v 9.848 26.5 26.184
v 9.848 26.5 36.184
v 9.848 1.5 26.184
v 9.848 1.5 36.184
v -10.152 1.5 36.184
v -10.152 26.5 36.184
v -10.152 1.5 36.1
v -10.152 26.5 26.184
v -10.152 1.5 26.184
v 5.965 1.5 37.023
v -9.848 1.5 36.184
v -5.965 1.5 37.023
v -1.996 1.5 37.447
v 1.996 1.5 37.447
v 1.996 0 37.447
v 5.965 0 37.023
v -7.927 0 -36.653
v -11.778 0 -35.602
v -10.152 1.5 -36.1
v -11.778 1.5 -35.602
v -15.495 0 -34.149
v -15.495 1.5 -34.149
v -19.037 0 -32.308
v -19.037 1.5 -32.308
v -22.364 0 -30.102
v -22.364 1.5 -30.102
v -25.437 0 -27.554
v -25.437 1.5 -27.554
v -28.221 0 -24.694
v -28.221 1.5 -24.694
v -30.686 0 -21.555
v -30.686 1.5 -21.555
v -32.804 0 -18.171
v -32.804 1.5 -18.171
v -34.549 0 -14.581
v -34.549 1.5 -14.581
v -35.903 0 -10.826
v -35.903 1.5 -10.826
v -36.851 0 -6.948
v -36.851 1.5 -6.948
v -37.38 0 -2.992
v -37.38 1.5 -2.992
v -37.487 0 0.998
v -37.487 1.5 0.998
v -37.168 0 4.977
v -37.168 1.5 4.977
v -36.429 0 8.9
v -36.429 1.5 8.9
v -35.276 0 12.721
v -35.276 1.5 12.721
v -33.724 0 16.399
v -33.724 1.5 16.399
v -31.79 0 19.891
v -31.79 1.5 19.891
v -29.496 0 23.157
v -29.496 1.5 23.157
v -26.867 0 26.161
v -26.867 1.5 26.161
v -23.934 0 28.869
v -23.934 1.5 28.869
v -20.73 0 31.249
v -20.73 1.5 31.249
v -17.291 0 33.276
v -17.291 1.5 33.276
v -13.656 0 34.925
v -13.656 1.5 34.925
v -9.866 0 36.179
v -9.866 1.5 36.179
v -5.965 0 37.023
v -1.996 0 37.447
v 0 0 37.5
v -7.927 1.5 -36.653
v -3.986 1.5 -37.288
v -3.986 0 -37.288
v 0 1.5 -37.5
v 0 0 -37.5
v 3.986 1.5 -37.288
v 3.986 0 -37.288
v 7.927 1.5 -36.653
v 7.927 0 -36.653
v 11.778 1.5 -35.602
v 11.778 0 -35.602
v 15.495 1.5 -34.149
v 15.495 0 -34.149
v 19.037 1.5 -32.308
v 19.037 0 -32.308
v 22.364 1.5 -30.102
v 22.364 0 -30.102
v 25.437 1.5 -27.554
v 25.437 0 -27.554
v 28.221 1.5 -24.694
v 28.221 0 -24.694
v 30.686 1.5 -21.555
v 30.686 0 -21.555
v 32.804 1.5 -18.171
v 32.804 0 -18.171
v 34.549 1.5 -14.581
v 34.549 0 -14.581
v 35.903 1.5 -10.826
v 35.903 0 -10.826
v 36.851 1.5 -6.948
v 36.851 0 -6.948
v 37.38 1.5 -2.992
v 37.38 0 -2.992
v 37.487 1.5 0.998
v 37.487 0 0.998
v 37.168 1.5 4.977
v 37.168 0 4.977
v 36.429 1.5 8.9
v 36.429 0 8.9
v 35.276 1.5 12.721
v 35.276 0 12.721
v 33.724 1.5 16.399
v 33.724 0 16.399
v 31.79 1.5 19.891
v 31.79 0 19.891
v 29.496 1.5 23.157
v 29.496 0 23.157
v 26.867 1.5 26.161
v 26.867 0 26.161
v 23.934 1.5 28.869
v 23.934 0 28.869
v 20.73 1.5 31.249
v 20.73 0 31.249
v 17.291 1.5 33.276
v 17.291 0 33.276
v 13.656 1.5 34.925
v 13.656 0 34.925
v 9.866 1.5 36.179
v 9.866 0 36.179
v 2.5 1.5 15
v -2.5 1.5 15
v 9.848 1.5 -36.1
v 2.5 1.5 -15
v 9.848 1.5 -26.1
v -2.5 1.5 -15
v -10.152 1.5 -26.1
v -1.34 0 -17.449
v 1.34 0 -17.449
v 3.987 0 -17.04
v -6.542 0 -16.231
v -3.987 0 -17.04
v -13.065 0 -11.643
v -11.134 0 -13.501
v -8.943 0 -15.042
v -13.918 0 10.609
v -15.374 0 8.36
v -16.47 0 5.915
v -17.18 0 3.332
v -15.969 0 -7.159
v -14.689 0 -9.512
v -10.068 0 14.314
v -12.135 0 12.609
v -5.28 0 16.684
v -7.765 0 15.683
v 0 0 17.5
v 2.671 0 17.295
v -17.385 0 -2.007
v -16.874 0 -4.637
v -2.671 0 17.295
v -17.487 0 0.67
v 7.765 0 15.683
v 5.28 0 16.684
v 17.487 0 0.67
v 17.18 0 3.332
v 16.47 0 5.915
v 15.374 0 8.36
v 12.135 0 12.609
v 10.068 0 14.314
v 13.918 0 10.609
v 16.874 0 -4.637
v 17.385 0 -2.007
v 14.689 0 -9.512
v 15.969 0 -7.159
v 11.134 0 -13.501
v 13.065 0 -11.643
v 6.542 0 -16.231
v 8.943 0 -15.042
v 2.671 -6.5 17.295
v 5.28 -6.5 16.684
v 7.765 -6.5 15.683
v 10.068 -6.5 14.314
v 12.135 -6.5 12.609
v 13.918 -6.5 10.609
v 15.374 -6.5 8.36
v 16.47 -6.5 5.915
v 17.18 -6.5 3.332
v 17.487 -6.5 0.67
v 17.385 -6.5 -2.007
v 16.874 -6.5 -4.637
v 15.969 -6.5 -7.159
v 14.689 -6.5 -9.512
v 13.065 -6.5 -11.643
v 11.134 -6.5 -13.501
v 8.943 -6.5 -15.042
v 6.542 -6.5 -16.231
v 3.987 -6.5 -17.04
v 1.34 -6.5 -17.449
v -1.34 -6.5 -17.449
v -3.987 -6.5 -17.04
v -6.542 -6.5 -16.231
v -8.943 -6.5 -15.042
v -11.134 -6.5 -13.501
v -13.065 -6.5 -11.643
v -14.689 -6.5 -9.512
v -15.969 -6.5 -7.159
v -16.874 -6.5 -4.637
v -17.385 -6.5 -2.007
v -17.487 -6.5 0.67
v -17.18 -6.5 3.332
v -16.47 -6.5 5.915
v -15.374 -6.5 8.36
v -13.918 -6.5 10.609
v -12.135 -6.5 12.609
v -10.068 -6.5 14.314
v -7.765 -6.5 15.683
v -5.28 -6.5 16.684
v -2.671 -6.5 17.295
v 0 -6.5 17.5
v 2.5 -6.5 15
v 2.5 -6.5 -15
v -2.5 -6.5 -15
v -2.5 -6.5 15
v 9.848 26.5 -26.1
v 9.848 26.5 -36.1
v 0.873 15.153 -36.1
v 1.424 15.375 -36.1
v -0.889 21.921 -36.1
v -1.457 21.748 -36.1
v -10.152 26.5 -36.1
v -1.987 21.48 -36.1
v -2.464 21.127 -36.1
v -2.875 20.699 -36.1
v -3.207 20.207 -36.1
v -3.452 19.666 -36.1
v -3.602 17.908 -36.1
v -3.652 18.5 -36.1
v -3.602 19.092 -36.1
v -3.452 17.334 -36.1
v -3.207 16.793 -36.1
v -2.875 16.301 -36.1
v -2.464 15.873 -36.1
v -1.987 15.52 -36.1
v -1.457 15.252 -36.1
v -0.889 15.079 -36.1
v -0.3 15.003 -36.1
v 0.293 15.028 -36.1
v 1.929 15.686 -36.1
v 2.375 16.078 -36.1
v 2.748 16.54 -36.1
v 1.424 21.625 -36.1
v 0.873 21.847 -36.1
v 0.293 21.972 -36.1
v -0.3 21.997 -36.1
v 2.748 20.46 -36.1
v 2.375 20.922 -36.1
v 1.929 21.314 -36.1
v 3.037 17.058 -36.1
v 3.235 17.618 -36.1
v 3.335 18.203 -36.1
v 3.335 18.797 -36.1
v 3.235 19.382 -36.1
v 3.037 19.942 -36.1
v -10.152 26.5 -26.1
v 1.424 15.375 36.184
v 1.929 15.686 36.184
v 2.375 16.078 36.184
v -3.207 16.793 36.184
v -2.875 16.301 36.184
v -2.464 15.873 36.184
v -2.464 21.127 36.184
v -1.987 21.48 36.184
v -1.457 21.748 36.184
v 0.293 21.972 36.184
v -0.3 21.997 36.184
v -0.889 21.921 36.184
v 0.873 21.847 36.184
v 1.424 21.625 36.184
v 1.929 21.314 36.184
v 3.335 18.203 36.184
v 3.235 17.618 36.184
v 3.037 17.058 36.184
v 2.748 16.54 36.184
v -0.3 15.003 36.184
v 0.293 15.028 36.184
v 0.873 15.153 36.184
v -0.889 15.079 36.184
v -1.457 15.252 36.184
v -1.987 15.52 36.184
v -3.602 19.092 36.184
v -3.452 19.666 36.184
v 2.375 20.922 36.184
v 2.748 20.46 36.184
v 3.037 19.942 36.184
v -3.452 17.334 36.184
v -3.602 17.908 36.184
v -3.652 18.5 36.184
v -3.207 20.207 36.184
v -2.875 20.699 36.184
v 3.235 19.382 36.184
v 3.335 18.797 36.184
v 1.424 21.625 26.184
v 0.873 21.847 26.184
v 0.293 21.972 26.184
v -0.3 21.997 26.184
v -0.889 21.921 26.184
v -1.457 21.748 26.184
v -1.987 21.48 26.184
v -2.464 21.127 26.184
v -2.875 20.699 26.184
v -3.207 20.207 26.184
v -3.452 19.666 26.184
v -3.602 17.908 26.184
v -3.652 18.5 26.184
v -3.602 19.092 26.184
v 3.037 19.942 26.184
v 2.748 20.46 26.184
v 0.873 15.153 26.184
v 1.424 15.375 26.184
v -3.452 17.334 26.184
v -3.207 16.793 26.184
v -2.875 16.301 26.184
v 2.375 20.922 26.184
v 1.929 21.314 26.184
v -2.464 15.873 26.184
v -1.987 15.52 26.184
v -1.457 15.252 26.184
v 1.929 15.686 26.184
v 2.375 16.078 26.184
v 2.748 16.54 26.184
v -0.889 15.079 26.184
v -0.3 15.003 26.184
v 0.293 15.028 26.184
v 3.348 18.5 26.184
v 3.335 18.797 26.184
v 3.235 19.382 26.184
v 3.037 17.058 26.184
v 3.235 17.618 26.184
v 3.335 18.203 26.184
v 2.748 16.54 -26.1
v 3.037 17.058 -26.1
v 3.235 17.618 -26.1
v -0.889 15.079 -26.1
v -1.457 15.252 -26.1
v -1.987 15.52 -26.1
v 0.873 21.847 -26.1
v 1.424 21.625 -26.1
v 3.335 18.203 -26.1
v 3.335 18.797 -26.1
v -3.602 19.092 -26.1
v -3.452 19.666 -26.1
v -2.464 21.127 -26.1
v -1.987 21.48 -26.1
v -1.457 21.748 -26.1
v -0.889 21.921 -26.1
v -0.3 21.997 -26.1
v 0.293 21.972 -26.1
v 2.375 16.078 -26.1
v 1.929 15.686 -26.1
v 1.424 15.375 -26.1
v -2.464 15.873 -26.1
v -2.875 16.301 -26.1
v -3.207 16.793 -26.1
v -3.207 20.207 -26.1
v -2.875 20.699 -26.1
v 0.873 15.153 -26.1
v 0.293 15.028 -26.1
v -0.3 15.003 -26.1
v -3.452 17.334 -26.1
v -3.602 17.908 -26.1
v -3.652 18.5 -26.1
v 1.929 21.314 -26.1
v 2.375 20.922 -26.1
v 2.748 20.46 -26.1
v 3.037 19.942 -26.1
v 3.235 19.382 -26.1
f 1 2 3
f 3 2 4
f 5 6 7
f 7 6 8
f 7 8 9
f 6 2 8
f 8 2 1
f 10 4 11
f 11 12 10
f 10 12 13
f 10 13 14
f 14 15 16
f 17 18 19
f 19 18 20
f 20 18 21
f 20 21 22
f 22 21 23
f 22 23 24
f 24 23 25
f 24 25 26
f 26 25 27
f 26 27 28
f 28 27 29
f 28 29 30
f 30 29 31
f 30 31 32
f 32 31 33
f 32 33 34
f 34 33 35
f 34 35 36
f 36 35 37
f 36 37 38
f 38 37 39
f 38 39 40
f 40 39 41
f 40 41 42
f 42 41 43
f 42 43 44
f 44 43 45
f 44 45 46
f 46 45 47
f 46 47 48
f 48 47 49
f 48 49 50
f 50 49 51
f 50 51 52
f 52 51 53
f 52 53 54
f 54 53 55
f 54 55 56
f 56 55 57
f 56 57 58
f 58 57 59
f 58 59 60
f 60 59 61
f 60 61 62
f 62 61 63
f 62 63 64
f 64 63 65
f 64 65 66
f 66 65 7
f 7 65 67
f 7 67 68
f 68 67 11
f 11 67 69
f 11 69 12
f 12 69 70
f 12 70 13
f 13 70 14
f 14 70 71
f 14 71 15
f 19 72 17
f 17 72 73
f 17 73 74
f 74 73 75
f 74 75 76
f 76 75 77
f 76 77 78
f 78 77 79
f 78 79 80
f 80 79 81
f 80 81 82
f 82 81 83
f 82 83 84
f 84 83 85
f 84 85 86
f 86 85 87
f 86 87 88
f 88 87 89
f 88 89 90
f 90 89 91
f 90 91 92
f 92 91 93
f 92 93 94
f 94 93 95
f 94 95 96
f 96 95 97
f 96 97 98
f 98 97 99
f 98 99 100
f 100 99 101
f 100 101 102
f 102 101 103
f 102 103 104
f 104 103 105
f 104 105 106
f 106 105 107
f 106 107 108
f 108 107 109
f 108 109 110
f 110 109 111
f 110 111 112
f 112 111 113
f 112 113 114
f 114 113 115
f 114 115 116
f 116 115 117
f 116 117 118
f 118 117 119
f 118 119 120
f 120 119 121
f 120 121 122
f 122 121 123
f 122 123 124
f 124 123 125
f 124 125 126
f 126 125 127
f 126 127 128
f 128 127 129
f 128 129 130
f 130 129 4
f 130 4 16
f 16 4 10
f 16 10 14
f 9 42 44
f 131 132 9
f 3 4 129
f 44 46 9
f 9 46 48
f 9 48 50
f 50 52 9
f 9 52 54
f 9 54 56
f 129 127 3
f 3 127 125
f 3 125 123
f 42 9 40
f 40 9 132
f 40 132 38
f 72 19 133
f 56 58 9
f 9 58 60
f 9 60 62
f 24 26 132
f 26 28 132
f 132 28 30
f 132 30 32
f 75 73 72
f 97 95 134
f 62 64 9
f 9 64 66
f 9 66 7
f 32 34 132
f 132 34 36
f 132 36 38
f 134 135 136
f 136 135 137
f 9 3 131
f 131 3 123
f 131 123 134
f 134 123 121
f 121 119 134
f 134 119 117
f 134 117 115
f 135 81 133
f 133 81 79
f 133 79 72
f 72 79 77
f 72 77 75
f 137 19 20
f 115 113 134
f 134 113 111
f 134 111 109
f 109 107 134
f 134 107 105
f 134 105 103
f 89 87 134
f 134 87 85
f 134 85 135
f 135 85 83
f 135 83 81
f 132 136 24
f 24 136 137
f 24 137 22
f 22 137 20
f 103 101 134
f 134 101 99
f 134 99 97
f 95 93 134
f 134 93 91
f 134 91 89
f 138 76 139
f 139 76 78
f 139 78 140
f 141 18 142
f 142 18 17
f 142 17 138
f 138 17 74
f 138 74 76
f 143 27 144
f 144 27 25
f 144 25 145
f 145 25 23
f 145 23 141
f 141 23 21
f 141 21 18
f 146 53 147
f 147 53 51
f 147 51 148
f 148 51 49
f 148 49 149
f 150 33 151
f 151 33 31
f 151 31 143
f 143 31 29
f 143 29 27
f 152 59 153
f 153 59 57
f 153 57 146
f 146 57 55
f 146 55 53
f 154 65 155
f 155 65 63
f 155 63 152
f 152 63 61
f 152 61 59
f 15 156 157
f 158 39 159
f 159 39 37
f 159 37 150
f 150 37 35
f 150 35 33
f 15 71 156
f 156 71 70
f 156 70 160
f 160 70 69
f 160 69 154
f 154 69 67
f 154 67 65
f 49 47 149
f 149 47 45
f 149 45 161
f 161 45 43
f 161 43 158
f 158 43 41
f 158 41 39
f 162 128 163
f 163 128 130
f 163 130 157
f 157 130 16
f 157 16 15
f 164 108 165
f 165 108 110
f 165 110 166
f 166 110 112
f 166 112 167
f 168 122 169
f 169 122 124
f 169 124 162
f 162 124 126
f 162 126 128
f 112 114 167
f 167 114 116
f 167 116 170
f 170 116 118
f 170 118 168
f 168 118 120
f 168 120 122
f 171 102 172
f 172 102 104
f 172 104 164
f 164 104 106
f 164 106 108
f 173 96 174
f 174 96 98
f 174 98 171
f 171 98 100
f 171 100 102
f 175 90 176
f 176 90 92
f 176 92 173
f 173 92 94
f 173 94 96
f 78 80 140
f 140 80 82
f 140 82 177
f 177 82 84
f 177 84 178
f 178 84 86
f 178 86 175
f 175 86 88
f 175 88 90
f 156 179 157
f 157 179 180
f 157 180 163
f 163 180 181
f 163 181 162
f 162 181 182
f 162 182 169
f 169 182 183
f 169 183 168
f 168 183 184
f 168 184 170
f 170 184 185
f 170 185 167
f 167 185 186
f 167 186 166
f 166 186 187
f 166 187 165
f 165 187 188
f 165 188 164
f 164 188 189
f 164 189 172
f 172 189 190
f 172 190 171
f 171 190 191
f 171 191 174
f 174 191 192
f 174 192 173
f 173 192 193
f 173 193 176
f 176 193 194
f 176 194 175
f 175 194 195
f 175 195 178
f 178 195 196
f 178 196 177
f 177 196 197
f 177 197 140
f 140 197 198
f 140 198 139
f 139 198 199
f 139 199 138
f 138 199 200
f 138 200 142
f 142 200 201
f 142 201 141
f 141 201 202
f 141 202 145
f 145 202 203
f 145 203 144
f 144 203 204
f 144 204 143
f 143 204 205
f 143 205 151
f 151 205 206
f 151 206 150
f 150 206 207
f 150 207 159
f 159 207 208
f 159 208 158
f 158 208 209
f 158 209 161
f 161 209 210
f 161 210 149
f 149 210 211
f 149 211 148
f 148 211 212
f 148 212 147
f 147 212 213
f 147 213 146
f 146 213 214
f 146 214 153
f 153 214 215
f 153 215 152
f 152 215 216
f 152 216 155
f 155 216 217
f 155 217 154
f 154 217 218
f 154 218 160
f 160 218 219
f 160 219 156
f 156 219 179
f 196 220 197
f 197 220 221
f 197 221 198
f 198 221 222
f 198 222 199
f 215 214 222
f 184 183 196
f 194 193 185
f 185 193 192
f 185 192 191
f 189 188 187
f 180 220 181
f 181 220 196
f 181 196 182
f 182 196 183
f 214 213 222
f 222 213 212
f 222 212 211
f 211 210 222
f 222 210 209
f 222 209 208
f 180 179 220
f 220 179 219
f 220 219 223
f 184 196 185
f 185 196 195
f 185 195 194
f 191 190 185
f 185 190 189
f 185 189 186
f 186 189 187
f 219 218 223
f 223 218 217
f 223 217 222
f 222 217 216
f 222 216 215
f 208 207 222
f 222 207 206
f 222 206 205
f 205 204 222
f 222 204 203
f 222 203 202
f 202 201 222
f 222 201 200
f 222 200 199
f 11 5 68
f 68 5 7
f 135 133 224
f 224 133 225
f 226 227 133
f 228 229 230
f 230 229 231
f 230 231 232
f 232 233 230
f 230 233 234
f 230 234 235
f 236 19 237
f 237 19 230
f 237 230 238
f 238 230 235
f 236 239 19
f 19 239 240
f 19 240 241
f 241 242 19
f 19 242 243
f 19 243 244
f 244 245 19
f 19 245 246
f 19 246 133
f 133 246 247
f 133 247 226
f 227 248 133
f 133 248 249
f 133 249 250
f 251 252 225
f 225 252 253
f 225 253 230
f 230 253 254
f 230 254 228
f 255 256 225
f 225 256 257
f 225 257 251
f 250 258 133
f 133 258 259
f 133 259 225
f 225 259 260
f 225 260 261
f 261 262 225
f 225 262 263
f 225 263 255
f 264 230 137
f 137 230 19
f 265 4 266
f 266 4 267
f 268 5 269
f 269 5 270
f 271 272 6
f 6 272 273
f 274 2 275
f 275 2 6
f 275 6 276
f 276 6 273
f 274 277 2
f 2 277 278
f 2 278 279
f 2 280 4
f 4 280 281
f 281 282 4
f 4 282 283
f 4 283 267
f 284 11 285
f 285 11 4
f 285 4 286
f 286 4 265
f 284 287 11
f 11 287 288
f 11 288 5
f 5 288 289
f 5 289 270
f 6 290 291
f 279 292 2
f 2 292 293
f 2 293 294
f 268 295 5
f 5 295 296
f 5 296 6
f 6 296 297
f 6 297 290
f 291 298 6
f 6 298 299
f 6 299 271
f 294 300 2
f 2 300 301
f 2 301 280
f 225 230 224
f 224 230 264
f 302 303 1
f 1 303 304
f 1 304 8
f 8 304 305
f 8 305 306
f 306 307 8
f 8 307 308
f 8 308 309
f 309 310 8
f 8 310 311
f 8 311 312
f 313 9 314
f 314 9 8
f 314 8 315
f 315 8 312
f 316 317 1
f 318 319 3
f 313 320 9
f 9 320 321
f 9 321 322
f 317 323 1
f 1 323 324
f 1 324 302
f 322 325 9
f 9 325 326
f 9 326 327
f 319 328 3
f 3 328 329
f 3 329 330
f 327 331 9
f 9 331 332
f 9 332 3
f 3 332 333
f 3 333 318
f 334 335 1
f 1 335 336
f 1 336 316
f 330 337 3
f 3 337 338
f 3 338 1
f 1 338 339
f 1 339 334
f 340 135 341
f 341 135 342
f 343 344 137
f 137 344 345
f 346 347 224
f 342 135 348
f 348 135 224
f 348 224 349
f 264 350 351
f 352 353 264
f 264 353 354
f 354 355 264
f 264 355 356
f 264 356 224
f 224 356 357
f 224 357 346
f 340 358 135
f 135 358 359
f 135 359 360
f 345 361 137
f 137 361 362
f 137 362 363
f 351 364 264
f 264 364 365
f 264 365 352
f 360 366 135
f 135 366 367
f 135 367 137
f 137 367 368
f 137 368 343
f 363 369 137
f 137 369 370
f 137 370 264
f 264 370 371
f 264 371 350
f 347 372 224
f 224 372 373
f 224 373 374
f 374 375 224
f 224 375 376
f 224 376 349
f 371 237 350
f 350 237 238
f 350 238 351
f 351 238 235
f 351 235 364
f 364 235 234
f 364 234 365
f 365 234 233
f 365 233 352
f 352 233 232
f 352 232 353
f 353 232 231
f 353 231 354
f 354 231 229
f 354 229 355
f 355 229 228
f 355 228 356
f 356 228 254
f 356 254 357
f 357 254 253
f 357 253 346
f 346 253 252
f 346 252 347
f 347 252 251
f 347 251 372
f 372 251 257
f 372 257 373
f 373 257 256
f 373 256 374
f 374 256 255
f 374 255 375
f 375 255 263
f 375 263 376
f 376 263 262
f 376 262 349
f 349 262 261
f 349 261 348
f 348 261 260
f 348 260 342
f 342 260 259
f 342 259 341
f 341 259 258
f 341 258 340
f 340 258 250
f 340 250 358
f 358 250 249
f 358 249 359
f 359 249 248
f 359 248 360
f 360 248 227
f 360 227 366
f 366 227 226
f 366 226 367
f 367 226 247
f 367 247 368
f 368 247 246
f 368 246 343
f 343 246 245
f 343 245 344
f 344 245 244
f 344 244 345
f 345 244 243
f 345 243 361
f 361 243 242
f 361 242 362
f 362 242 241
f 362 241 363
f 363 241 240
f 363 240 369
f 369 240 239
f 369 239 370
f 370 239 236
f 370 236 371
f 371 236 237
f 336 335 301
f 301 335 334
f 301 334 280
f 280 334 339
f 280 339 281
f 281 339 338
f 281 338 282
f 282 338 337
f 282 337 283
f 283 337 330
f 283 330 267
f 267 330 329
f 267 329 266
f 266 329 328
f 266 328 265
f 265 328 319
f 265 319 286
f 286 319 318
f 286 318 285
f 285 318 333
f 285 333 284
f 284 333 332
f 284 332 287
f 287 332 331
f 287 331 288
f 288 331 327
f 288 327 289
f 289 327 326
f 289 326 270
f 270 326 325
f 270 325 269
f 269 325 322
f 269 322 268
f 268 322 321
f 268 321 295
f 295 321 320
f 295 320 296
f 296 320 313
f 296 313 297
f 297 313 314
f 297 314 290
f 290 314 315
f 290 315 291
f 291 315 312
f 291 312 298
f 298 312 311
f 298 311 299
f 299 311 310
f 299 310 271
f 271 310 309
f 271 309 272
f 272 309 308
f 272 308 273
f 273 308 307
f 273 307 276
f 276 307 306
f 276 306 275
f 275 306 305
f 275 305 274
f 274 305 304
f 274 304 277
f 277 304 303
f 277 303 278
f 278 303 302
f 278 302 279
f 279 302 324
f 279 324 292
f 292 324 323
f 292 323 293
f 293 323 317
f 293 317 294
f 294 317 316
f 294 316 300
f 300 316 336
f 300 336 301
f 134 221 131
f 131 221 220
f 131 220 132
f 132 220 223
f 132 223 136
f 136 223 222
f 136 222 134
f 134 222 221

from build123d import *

# Parameters (mm, degrees)
ESQUISSE1_R             = 37.5
BOSS_EXTRU_1_DEPTH      = 1.5
ESQUISSE2_R             = 17.5
BOSS_EXTRU_2_DEPTH      = 8
ESQUISSE4_W             = 20
ESQUISSE4_H             = 72.283474197
BOSS_EXTRU_5_DEPTH      = 25
ESQUISSE11_W            = 52.283474197
ESQUISSE11_H            = 25
ENL_V_MAT_EXTRU_5_DEPTH = 25
ESQUISSE12_R            = 3.5
ENL_V_MAT_EXTRU_8_DEPTH = 87.749161989
ESQUISSE13_W            = 5
ESQUISSE13_H            = 30
ENL_V_MAT_EXTRU_9_DEPTH = 12


with BuildPart() as part:
    # Esquisse1 → Boss.-Extru.1 (new body)
    with BuildSketch(Plane(origin=(0, 0, 0), x_dir=(1, 0, 0), z_dir=(0, 1, 0))):
        with Locations(Location((0, 0, 0), (0, 0, 270))):
            Circle(ESQUISSE1_R)
    extrude(amount=BOSS_EXTRU_1_DEPTH)

    # Esquisse2 → Boss.-Extru.2 (add)
    with BuildSketch(Plane(origin=(0, 1.5, 0), x_dir=(1, 0, 0), z_dir=(0, 1, 0))):
        with Locations(Location((0, 0, 0), (0, 0, 270))):
            Circle(ESQUISSE2_R)
    extrude(amount=-BOSS_EXTRU_2_DEPTH)

    # Esquisse4 → Boss.-Extru.5 (add)
    with BuildSketch(Plane(origin=(0, 1.5, 0), x_dir=(1, 0, 0), z_dir=(0, 1, 0))):
        with Locations((-0.151898301, -0.042028501)):
            Rectangle(ESQUISSE4_W, ESQUISSE4_H)
    extrude(amount=BOSS_EXTRU_5_DEPTH)

    # Esquisse11 → Enlèv. mat.-Extru.5 (cut)
    with BuildSketch(Plane(origin=(9.848101699, 0, 0), x_dir=(0, 0, -1), z_dir=(1, 0, 0))):
        with Locations((-0.0420285, 14)):
            Rectangle(ESQUISSE11_W, ESQUISSE11_H)
    extrude(amount=-ENL_V_MAT_EXTRU_5_DEPTH, mode=Mode.SUBTRACT)

    # Esquisse12 → Enlèv. mat.-Extru.8 (cut, through all)
    with BuildSketch(Plane(origin=(0, 0, -36.099708598), x_dir=(-1, 0, 0), z_dir=(0, 0, -1))):
        with Locations((0.151898301, 18.5)):
            Circle(ESQUISSE12_R)
    extrude(amount=-ENL_V_MAT_EXTRU_8_DEPTH, mode=Mode.SUBTRACT)

    # Esquisse13 → Enlèv. mat.-Extru.9 (cut)
    with BuildSketch(Plane(origin=(0, 1.5, 0), x_dir=(1, 0, 0), z_dir=(0, 1, 0))):
        Rectangle(ESQUISSE13_W, ESQUISSE13_H)
    extrude(amount=-ENL_V_MAT_EXTRU_9_DEPTH, mode=Mode.SUBTRACT)


solid = part.part
